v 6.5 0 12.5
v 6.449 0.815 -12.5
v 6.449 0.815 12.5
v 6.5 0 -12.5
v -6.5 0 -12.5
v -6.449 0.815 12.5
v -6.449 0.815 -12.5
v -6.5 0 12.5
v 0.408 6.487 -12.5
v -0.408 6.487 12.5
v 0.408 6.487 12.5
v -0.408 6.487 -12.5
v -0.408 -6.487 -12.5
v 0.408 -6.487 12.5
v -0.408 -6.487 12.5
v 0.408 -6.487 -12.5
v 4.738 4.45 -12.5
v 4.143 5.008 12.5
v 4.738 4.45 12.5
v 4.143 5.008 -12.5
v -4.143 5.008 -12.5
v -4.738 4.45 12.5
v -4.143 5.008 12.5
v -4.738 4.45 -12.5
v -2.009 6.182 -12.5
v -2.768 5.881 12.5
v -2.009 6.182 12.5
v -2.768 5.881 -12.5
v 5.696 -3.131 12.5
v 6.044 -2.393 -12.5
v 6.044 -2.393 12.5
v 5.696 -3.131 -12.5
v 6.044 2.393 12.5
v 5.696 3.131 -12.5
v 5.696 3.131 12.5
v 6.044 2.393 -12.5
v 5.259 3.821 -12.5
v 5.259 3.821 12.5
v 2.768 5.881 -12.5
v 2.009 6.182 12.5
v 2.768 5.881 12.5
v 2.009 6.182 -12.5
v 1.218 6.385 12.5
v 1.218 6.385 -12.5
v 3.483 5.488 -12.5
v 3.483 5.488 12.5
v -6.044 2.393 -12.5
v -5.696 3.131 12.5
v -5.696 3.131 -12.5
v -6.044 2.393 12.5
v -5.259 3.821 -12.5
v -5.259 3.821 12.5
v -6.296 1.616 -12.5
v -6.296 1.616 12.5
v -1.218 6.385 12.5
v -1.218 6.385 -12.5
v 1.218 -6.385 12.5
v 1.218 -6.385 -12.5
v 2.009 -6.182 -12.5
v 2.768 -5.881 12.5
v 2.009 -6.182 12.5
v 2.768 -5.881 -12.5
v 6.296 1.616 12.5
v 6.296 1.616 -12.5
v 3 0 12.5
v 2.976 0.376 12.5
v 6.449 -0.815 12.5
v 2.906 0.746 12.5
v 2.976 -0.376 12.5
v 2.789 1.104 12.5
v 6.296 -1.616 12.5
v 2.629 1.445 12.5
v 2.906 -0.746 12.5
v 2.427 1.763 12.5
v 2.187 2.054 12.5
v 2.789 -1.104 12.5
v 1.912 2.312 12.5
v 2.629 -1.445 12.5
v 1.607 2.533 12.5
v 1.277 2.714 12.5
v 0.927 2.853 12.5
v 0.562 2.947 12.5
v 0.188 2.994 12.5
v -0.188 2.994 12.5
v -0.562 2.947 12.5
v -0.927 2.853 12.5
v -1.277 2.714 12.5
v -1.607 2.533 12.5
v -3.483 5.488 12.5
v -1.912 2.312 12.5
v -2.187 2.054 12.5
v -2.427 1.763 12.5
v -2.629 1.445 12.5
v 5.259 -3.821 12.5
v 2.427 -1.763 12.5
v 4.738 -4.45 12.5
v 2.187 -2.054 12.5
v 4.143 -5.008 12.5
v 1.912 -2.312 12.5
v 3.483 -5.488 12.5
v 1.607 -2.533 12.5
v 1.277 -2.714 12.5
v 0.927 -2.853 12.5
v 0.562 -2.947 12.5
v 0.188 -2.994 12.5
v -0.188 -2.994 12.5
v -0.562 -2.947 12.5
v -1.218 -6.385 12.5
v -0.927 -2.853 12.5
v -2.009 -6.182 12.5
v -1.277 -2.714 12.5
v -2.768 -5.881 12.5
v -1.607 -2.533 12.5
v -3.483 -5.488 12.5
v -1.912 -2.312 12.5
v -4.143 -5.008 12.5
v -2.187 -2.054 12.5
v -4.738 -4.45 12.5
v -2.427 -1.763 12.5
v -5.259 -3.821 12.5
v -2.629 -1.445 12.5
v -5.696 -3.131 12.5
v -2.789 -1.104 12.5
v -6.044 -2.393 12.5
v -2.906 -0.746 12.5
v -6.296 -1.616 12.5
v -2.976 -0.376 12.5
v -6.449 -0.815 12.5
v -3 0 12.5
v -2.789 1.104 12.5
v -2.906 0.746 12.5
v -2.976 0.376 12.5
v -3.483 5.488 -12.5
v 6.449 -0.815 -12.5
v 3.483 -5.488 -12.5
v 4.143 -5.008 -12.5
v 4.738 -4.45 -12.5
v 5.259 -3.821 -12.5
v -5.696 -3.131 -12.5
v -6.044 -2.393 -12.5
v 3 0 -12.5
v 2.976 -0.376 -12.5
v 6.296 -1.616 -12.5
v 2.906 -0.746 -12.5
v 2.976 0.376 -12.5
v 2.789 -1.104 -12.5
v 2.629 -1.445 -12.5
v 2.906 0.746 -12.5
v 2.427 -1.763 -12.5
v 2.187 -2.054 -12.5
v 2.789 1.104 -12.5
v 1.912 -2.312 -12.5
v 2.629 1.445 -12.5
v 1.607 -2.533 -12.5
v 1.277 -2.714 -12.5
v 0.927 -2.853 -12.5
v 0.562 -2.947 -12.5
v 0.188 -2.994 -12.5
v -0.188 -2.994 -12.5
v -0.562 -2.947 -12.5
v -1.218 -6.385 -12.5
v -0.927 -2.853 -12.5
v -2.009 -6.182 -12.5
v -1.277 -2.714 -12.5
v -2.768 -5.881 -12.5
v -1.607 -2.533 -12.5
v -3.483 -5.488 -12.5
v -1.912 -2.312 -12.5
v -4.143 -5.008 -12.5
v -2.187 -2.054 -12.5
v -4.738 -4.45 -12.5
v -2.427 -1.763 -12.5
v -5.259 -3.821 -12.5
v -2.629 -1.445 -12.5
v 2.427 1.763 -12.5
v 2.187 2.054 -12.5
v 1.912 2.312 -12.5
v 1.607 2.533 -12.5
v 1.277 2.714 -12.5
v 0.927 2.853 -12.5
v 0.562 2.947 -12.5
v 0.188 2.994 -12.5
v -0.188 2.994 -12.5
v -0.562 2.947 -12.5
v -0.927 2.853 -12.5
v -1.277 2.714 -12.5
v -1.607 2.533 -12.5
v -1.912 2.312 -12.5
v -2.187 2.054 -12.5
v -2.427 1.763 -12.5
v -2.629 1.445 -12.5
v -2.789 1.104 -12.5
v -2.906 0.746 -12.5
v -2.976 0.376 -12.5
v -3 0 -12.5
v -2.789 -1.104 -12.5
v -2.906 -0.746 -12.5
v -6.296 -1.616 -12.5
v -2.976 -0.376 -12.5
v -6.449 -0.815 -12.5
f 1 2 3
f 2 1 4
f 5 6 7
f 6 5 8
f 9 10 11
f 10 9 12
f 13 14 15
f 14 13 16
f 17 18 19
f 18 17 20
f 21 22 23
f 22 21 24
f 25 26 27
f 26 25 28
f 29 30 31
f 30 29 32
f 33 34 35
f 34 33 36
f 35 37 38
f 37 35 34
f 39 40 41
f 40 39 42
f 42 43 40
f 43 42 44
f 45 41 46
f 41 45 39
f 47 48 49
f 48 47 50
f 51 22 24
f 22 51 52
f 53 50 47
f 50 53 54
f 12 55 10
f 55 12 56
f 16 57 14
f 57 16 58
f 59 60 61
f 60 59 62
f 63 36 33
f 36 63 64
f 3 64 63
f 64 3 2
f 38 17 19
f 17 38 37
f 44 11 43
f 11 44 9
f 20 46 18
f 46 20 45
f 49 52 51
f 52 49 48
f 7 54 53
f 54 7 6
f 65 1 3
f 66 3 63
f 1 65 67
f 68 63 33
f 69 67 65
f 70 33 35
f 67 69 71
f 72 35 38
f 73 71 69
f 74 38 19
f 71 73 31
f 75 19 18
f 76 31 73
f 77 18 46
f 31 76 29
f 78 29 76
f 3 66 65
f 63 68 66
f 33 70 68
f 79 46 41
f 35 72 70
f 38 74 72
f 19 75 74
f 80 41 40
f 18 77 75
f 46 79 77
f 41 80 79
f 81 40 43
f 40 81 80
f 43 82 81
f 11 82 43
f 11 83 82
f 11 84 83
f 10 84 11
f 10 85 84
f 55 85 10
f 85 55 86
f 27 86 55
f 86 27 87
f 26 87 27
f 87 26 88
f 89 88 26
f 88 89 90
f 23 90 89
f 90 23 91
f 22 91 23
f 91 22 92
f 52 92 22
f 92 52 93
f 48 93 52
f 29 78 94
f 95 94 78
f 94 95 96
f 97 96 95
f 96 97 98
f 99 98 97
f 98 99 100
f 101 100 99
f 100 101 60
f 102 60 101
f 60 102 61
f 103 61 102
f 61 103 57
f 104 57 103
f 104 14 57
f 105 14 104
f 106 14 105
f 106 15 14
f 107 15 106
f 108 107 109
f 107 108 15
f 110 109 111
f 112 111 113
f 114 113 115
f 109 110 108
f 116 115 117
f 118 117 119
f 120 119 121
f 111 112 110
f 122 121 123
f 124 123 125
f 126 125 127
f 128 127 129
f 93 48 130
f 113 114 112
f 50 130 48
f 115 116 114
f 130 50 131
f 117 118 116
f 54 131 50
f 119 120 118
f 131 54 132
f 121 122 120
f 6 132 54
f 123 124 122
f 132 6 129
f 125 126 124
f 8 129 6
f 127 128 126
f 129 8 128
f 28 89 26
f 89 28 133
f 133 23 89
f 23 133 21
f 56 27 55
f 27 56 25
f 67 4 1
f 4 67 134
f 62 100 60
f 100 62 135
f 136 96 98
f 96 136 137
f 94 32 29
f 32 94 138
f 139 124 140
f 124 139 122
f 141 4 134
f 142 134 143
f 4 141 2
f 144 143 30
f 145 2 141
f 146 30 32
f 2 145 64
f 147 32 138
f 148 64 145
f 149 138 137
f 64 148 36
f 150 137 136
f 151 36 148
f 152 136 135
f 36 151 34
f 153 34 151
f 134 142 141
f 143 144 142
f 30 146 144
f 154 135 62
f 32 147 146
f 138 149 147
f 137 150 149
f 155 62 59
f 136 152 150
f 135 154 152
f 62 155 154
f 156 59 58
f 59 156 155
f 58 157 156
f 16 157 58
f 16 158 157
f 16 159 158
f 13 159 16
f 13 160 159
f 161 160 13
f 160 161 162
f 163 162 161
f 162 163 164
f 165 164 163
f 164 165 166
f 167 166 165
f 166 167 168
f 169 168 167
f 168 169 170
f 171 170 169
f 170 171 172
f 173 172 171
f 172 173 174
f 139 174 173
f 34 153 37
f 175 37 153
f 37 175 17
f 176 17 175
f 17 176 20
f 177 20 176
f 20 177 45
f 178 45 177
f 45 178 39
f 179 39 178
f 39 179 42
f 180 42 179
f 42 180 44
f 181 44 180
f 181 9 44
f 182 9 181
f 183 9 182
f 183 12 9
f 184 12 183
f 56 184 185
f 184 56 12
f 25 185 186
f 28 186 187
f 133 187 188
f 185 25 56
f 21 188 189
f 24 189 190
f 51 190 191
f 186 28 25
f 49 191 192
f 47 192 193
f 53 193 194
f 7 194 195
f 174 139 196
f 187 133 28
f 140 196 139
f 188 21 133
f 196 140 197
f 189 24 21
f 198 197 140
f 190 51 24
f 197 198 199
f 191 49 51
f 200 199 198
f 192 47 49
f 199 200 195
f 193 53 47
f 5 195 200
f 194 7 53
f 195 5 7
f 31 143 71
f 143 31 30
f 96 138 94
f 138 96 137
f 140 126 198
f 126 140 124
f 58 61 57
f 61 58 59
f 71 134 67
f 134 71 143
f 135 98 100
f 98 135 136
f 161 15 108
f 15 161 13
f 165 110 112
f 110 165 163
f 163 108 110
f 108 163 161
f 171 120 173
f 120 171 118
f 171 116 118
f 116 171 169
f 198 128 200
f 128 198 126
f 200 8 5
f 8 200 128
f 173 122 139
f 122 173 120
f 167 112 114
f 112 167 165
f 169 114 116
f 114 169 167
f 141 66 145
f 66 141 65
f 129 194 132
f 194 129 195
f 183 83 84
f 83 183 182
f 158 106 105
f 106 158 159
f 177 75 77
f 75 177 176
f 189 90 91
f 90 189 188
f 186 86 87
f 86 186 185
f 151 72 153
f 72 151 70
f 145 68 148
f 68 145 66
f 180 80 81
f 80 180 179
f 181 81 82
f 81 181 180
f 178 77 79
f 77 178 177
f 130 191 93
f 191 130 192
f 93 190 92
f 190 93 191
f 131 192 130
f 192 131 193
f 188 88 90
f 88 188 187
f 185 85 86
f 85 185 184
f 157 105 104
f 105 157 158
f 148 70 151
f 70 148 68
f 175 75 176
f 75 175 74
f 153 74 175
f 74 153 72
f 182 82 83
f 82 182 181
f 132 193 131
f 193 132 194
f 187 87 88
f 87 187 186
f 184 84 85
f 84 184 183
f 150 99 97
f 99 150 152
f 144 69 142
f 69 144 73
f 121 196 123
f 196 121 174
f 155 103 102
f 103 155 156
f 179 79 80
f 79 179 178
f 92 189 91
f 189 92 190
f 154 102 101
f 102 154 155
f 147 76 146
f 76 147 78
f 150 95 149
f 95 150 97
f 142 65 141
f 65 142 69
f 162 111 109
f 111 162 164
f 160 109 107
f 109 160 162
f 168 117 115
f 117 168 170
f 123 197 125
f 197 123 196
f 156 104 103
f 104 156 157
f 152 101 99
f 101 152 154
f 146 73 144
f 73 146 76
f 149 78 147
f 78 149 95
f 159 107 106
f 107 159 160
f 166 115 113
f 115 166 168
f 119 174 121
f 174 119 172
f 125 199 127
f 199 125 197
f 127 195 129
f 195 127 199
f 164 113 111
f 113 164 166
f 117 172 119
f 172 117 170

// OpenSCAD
$fn = 50;


difference() {
	union() {
		translate(v = [0, 0, -12.5000000000]) {
			cylinder(h = 25, r = 6.5000000000);
		}
	}
	union() {
		translate(v = [0, 0, -100.0000000000]) {
			cylinder(h = 200, r = 3);
		}
	}
}
